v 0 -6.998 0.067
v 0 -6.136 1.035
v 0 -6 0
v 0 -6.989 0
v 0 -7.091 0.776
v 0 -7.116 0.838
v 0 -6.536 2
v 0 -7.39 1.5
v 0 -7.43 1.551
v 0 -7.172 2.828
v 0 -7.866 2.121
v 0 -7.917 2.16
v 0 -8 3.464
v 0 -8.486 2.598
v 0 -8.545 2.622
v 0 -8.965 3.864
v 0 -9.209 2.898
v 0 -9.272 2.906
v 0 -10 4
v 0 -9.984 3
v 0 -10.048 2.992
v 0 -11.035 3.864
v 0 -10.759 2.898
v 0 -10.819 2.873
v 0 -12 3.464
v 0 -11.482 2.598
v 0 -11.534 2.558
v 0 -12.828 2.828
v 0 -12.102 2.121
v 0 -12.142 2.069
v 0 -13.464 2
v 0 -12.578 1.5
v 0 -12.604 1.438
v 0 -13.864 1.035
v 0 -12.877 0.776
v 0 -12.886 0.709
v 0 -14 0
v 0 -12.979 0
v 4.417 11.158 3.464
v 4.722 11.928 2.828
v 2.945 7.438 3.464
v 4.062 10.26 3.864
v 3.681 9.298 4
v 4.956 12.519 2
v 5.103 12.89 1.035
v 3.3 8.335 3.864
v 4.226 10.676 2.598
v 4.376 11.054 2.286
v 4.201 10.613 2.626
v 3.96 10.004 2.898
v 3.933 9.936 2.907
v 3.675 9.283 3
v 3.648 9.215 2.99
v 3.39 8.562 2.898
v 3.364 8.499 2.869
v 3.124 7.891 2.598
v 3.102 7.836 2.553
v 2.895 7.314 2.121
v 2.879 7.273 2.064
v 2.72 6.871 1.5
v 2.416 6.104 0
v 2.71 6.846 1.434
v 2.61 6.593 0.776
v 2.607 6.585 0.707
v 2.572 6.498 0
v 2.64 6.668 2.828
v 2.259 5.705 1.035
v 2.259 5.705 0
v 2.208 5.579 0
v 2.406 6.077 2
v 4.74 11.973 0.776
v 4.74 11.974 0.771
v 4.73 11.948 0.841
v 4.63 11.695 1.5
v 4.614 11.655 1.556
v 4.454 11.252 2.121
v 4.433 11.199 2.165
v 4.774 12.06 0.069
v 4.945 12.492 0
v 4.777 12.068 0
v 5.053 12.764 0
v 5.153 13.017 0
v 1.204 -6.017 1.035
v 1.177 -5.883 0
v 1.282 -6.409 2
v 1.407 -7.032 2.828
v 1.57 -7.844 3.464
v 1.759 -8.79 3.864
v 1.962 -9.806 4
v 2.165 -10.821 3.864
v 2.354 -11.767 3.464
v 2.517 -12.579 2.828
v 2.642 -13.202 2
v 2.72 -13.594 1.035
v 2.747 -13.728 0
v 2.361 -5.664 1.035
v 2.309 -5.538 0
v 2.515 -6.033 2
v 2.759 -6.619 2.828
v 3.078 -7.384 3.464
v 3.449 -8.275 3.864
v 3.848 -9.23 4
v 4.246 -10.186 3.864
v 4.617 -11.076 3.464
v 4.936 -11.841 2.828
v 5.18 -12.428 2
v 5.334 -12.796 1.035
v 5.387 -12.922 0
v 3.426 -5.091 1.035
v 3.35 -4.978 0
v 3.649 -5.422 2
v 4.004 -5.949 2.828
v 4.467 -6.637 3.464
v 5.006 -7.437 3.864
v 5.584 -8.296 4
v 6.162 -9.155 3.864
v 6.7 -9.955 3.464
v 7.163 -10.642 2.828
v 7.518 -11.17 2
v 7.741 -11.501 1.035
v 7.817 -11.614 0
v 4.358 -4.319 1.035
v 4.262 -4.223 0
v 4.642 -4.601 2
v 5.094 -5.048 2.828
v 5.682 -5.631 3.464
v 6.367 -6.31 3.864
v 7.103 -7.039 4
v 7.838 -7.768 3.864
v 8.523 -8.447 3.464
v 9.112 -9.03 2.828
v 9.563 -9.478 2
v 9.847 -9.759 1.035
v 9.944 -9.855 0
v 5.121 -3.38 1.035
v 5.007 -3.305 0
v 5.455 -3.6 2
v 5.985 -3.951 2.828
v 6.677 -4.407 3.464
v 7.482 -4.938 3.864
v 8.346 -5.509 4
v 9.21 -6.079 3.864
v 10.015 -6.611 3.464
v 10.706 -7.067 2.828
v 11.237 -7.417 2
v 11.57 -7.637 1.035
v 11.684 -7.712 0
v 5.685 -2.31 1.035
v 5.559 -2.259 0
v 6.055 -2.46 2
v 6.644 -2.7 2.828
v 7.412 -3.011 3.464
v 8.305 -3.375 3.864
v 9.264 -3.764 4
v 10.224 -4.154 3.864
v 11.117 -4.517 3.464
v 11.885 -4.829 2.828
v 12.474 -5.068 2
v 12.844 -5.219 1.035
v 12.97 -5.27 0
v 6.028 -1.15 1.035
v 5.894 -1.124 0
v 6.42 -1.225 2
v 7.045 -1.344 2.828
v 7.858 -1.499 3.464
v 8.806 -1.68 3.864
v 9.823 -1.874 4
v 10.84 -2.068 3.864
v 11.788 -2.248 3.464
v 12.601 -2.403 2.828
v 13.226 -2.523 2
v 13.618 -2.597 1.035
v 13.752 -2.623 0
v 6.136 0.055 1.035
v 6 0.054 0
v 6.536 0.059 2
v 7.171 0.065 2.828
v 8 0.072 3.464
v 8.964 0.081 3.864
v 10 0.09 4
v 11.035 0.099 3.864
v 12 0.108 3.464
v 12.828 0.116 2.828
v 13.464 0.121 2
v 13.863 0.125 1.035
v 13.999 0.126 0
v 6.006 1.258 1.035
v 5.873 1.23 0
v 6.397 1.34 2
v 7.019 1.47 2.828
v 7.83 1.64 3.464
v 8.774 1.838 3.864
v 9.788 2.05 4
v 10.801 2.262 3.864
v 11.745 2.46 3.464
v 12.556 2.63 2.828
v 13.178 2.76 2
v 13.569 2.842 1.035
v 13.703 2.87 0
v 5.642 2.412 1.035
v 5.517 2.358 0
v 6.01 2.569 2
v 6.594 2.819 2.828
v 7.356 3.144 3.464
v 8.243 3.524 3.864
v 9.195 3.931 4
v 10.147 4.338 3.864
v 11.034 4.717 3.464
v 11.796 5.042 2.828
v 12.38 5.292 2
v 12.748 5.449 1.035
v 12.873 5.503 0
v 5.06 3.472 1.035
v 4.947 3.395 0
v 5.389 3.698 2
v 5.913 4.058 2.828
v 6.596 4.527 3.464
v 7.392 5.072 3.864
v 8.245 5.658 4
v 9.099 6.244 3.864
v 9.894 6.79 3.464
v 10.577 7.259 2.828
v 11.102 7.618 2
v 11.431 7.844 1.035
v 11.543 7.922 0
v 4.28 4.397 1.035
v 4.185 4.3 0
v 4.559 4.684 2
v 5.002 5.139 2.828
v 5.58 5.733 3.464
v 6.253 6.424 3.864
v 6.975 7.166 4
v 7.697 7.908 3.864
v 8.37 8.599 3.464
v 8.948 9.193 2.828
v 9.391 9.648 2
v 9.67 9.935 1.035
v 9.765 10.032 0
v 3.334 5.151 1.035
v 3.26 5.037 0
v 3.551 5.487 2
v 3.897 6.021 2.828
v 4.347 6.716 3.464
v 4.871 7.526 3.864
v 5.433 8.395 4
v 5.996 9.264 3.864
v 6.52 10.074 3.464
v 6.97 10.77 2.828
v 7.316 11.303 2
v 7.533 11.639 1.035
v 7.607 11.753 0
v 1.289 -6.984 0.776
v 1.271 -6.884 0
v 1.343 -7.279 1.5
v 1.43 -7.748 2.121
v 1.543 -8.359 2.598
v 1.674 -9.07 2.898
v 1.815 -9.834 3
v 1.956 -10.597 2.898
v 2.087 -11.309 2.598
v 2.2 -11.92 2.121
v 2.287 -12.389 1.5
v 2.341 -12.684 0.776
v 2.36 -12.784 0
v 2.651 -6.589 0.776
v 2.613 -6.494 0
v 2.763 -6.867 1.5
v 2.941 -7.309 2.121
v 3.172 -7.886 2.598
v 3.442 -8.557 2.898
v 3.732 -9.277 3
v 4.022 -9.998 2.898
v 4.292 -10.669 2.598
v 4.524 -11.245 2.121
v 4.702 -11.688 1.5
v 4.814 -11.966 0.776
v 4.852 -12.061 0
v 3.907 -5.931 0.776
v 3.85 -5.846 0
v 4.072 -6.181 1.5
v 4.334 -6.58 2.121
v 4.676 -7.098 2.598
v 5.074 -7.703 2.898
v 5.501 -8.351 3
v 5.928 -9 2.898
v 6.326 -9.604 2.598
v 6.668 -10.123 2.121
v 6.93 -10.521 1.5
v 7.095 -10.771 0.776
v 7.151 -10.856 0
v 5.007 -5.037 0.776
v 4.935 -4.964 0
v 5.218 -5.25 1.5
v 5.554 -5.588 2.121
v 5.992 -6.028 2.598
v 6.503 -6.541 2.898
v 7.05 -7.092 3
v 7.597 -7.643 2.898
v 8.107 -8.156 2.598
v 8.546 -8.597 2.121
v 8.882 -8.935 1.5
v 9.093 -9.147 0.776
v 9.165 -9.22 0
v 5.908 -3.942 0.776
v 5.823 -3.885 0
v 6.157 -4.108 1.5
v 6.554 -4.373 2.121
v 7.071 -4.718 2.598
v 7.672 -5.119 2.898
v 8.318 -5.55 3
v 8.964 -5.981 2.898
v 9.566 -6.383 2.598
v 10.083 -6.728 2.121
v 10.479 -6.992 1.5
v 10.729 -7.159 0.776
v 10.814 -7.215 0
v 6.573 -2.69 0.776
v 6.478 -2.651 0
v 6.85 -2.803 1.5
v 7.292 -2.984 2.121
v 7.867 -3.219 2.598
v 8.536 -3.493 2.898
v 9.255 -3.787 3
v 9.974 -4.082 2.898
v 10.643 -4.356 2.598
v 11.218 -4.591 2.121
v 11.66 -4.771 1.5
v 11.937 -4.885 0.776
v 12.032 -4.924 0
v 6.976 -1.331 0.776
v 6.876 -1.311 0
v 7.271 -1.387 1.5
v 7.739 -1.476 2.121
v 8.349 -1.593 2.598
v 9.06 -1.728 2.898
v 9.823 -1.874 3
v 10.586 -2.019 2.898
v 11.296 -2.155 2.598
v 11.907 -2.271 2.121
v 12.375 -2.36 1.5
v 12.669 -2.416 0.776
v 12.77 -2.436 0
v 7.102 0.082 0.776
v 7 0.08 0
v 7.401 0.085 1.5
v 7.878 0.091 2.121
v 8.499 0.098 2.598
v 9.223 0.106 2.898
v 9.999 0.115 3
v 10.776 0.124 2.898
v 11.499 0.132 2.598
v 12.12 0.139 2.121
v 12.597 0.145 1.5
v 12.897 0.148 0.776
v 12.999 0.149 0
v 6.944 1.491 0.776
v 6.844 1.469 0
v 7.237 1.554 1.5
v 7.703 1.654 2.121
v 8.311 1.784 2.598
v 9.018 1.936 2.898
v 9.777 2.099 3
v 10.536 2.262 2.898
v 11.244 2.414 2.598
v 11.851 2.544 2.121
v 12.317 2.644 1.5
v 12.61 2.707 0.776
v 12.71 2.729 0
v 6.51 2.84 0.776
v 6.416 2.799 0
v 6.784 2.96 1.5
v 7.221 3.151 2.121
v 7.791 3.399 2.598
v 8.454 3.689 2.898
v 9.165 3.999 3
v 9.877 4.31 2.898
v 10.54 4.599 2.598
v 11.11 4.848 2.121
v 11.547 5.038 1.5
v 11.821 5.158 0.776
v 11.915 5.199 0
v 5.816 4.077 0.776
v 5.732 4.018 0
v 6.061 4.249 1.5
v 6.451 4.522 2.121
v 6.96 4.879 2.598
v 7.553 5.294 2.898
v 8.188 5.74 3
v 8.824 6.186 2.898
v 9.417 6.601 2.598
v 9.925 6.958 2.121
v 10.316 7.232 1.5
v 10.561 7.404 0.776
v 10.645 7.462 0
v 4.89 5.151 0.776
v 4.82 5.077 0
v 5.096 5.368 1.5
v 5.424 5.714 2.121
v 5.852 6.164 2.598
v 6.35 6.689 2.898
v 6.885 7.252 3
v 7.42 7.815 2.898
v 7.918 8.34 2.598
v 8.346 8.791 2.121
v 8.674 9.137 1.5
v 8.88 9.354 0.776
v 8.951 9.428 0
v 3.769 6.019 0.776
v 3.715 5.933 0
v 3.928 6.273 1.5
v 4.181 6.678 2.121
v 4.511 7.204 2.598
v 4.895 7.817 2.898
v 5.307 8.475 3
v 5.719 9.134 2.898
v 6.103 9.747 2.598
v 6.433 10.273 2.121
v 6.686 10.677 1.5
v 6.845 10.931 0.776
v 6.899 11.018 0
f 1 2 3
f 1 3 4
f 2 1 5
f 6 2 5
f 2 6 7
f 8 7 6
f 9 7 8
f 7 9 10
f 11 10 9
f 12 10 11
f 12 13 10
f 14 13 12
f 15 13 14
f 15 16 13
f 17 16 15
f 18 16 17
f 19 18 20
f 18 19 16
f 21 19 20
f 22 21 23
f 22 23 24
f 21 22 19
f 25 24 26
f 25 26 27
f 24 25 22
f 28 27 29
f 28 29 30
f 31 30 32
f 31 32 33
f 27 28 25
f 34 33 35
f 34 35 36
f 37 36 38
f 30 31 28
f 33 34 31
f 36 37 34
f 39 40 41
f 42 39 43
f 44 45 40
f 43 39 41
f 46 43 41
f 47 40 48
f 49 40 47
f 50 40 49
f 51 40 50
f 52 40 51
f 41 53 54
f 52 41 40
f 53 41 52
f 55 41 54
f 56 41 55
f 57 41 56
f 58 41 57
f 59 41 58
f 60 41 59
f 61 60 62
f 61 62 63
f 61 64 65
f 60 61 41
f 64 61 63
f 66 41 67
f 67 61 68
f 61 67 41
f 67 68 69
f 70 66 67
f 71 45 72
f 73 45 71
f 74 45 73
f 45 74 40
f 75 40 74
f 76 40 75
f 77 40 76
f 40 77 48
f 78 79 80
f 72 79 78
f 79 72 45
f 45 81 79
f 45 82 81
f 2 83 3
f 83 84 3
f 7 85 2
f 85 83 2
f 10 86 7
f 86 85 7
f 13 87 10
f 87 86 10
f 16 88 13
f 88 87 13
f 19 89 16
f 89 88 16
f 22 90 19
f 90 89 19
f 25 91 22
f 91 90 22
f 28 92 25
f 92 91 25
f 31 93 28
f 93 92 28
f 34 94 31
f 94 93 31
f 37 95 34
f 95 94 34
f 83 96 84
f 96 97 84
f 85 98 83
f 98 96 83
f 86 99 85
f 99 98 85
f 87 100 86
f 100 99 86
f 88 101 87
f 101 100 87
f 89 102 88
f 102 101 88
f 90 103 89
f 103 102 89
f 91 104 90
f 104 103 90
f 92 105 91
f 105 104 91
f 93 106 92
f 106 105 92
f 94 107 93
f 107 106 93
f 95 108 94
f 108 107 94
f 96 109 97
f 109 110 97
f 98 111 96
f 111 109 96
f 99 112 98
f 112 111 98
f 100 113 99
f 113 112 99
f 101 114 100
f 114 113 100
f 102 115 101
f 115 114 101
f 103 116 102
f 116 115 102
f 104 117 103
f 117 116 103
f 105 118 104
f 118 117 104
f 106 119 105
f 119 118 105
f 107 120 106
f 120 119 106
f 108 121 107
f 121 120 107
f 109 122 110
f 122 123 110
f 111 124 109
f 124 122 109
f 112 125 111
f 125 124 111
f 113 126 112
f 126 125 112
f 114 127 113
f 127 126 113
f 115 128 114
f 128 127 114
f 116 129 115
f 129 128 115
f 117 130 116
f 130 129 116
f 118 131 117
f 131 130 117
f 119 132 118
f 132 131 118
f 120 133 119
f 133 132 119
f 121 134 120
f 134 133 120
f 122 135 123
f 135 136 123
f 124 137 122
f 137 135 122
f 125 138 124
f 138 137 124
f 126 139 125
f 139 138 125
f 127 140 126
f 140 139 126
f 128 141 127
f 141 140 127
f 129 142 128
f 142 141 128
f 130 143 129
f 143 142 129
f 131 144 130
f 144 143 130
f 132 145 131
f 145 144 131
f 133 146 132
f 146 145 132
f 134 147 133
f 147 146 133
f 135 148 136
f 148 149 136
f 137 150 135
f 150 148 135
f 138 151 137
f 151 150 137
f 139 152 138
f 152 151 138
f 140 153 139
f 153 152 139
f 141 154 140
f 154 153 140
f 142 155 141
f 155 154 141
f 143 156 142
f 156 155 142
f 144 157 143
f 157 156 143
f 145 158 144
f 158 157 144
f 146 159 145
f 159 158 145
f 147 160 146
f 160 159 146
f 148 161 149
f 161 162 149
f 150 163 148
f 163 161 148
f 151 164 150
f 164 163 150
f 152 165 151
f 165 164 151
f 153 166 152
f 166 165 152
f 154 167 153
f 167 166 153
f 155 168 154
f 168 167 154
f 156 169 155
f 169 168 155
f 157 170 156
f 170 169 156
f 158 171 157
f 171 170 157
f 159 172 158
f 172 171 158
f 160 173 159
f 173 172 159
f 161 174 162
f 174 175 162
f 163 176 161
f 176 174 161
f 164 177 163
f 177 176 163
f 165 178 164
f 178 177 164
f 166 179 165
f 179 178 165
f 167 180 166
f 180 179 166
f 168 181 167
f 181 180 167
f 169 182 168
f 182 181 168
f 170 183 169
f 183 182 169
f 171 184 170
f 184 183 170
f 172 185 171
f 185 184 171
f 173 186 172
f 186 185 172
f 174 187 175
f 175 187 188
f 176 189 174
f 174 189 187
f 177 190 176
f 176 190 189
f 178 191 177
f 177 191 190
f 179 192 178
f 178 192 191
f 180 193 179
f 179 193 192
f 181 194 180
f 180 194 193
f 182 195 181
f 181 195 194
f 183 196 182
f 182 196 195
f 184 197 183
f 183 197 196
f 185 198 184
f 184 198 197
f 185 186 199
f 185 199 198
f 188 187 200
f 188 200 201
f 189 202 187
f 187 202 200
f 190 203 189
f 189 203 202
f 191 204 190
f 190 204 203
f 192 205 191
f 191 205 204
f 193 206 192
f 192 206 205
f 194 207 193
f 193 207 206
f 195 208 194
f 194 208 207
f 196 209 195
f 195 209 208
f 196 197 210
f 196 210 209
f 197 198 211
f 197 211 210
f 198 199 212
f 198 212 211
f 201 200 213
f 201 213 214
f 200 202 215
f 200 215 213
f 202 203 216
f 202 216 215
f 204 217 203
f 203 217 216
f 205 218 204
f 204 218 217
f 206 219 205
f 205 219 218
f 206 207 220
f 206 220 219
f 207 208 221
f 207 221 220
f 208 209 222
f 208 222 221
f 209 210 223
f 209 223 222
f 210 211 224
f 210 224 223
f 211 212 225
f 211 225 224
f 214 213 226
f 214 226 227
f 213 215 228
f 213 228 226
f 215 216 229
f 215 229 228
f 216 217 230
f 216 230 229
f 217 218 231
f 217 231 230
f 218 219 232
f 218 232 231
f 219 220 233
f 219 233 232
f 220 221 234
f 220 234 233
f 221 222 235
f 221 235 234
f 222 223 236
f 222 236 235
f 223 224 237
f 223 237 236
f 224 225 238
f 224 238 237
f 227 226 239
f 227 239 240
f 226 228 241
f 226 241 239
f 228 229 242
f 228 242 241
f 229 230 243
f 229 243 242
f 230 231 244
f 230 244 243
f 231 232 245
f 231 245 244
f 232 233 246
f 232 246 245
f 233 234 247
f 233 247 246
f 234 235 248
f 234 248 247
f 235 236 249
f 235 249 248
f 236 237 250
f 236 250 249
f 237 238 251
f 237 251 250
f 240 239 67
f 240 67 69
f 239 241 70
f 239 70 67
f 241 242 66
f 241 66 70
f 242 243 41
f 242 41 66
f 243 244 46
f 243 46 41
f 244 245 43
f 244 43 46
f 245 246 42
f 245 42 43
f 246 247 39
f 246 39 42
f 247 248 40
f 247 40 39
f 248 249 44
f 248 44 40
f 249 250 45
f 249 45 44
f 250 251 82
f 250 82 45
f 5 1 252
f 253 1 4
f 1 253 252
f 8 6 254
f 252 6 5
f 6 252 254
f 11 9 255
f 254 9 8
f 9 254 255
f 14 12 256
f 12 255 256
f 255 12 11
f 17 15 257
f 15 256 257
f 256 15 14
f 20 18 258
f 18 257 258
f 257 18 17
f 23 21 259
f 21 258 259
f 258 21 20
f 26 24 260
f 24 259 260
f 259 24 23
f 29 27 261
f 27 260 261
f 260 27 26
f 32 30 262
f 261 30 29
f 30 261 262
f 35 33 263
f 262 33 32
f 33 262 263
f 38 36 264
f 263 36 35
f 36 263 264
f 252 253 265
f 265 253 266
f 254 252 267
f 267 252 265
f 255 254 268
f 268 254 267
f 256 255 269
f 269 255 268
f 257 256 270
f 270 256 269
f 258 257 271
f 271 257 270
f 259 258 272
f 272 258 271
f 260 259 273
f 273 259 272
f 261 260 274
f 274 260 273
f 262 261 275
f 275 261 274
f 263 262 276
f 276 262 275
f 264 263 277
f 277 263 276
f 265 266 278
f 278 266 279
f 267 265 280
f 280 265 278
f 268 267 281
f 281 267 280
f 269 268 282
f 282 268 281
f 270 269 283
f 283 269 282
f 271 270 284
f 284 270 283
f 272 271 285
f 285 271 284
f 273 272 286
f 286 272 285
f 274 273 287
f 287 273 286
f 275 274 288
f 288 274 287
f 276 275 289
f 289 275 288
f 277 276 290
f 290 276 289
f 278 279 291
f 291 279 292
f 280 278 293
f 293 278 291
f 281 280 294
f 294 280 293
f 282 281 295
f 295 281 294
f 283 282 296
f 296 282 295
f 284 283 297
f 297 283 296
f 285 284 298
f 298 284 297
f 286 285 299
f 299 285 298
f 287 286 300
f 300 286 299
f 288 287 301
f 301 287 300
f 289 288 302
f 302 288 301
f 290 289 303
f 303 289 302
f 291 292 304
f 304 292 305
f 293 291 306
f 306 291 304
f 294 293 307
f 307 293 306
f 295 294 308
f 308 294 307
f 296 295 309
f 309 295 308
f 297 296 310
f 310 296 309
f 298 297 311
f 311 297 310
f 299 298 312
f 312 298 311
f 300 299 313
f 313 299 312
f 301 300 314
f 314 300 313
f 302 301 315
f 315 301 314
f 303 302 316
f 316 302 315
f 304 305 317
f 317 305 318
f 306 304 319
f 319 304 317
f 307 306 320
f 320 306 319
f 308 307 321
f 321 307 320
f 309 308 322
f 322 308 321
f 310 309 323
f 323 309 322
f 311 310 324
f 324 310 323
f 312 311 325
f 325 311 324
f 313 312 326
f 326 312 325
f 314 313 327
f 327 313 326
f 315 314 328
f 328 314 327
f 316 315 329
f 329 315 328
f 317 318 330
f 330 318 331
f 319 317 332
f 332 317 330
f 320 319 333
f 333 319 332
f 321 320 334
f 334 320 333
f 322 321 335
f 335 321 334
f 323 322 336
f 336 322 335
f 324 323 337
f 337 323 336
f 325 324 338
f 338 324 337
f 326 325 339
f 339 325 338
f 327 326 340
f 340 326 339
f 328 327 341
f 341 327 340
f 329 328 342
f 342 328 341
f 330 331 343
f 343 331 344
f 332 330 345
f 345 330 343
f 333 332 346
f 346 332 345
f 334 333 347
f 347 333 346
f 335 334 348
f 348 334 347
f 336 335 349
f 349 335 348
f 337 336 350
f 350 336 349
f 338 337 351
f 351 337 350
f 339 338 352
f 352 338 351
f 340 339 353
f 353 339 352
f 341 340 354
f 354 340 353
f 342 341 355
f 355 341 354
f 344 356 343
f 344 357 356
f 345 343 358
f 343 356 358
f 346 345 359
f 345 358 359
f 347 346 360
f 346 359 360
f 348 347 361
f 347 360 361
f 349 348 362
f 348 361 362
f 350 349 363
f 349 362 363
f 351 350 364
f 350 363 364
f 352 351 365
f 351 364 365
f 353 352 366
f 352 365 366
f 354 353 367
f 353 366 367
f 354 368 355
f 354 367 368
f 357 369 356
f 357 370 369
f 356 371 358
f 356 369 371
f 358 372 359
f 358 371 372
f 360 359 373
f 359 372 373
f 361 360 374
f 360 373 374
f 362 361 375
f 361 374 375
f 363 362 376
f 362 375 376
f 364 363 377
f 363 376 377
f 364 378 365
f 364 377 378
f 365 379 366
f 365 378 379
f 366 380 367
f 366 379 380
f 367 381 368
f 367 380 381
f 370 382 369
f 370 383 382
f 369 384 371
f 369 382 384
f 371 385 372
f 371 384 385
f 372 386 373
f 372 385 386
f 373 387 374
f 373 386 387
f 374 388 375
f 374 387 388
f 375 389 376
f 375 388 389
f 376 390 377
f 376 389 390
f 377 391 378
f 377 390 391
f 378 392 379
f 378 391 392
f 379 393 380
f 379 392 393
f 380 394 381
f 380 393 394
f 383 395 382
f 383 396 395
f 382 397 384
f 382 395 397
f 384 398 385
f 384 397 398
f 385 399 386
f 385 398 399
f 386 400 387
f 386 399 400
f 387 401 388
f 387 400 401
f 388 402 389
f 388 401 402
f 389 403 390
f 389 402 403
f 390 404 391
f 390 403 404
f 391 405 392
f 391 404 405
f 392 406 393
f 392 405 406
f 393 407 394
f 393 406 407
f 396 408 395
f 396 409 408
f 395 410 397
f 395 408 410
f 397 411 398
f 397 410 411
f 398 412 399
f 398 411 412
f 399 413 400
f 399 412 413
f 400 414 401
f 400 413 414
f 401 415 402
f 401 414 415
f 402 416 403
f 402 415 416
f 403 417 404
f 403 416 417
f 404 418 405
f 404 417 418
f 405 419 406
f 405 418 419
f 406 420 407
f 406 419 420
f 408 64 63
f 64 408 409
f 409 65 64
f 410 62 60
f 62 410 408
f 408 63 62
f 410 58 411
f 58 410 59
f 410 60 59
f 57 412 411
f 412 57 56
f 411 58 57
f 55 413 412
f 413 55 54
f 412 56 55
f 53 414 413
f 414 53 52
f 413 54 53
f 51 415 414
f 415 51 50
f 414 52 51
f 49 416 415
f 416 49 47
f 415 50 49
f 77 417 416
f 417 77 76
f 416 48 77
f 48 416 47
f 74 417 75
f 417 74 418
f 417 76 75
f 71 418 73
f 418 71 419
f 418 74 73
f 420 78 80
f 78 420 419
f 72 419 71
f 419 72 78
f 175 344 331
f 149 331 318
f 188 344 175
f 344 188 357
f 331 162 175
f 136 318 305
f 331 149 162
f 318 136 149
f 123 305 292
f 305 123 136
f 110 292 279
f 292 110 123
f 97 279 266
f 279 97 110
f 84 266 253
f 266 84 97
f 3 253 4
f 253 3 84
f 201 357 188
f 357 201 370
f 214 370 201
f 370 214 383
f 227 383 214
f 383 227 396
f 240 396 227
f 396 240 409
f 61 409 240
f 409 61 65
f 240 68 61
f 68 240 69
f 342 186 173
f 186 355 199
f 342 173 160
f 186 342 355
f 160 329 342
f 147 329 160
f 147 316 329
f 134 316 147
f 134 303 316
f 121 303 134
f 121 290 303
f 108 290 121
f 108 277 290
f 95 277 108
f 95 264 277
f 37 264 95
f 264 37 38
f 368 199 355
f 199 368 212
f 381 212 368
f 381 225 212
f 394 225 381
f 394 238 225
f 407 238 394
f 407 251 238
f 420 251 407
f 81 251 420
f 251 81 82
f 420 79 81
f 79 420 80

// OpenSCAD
// file: ../build_environments.scad
// build_environments.scad: modules to build level sections
//

module pool(diameter=10.0, wall_height=2.0, step_width=3.0, connections=[])
{
    difference() {
        union() {
        difference() {
            cylinder(h=0.5,r1=diameter+step_width,r2=diameter+step_width,$fn=48);
            translate([0,0,-0.1])
                cylinder(h=0.7,r1=diameter,r2=diameter,$fn=48);
        }
        difference() {
            cylinder(h=wall_height,r1=diameter+step_width+1.0,r2=diameter+step_width+1.0,$fn=48);
            translate([0,0,-0.1])
                cylinder(h=wall_height+0.2,r1=diameter+step_width,r2=diameter+step_width,$fn=48);
        }
        }
    
        for (c = connections)
        {
            rotate([0,90,0]) {
                angle = atan2(c[1],c[0]);
                rotate([-angle,0,0]) {
                    cylinder(h=diameter+5.0,r1=c[2],r2=c[2],$fn=48);
                }
            }
        }
    }
}

module straight(length=10.0, width=2.0, dy1=0.0, dy2=0.0, dz=0.0)
{
    dims = [0, 0, 0, 0, 0, (dz/length)];
    matrix = [
        [ 1, dims[0], dims[1], 0 ],
        [ dims[2], 1, dims[4], 0 ],
        [ dims[5], dims[3], 1, 0 ],
        [ 0, 0, 0, 1 ]
    ];
    multmatrix(matrix)
    difference() {
        translate([dy1,0,0])
        union() {
            rotate([0,90,0]) {
                difference() {
                    cylinder(h=(length-dy1-dy2),r1=width+1.0,r2=width+1.0,$fn=24);
                    translate([0,0,-0.1])
                        cylinder(h=(length-dy1-dy2+0.2),r1=width,r2=width,$fn=24);
                }
                difference() {
                    cylinder(h=1.0,r1=width+2.0,r2=width+2.0,$fn=24);
                    translate([0,0,-0.1])
                        cylinder(h=1.2,r1=width,r2=width,$fn=24);
                }
                translate([0,0,(length-dy1-dy2)-1.0]) {
                    difference() {
                        cylinder(h=1.0,r1=width+2.0,r2=width+2.0,$fn=24);
                        translate([0,0,-0.1])
                            cylinder(h=1.2,r1=width,r2=width,$fn=24);
                    }
                }
            }
        }
        translate([0,0,-(2*width+4.0)/2])
            cube([3*length,3*length,2*width+4.0],center=true);
    }
}

module curve(p0=[0,0], center=[0,0], dir=1, angle=0.0, width=2.0)
{
    radius = sqrt((p0[0]-center[0])*(p0[0]-center[0]) + (p0[1]-center[1])*(p0[1]-center[1]));
    if (dir == 0) {
        difference() {
            rotate([0,0,-90])
            difference() {
                rotate_extrude(angle = angle, convexity = 10, $fn=32)
                    translate([radius, 0, 0])
                        circle(r = width+1.0,$fn=24);
                rotate([0,0,-1.0])
                    rotate_extrude(angle = angle+2.0, convexity = 10, $fn=32)
                        translate([radius, 0, 0])
                            circle(r = width,$fn=24);
            }
            translate([0,0,-(2*width+4.0)/2])
                cube([5*radius,5*radius,2*width+4.0],center=true);
        }
    }
    else {
        difference() {
            rotate([0,0,90])
            difference() {
                rotate_extrude(angle = -angle, convexity = 10, $fn=32)
                    translate([radius, 0, 0])
                        circle(r = width+1.0,$fn=24);
                rotate([0,0,1.0])
                    rotate_extrude(angle = -angle-2.0, convexity = 10, $fn=32)
                        translate([radius, 0, 0])
                            circle(r = width,$fn=24);
            }
            translate([0,0,-(2*width+4.0)/2])
                cube([5*radius,5*radius,2*width+4.0],center=true);
        }
    }

}

// test pool
//pool(diameter=12.0000, wall_height=3.0000, step_width=3.0000, connections=[[0.0000,-26.0000,2.0000], [23.6074,0.0000,2.0000]]);

// test straight, slope
//straight(length=26.0000, width=2.0000, dy1=11.8322, dy2=6.7082, dz=0.0000);
//straight(length=29.1549, width=12.0000, dy1=0.0000, dy2=0.0000, dz=-15.0000);

// test curve
//curve(p0=[23.6074, 0.0000], center=[23.6074, 5.0000], dir=0, angle=60.1011, width=2.0000);
//curve(p0=[33.6426, 12.4219], center=[37.9771, 9.9295], dir=1, angle=120.4627, width=2.0000);
// main file
use <../build_environments.scad>;
curve(p0=[-73.2507, -51.5059], center=[-75.0444, -41.6681], dir=0, angle=158.4029, width=3.0000);
